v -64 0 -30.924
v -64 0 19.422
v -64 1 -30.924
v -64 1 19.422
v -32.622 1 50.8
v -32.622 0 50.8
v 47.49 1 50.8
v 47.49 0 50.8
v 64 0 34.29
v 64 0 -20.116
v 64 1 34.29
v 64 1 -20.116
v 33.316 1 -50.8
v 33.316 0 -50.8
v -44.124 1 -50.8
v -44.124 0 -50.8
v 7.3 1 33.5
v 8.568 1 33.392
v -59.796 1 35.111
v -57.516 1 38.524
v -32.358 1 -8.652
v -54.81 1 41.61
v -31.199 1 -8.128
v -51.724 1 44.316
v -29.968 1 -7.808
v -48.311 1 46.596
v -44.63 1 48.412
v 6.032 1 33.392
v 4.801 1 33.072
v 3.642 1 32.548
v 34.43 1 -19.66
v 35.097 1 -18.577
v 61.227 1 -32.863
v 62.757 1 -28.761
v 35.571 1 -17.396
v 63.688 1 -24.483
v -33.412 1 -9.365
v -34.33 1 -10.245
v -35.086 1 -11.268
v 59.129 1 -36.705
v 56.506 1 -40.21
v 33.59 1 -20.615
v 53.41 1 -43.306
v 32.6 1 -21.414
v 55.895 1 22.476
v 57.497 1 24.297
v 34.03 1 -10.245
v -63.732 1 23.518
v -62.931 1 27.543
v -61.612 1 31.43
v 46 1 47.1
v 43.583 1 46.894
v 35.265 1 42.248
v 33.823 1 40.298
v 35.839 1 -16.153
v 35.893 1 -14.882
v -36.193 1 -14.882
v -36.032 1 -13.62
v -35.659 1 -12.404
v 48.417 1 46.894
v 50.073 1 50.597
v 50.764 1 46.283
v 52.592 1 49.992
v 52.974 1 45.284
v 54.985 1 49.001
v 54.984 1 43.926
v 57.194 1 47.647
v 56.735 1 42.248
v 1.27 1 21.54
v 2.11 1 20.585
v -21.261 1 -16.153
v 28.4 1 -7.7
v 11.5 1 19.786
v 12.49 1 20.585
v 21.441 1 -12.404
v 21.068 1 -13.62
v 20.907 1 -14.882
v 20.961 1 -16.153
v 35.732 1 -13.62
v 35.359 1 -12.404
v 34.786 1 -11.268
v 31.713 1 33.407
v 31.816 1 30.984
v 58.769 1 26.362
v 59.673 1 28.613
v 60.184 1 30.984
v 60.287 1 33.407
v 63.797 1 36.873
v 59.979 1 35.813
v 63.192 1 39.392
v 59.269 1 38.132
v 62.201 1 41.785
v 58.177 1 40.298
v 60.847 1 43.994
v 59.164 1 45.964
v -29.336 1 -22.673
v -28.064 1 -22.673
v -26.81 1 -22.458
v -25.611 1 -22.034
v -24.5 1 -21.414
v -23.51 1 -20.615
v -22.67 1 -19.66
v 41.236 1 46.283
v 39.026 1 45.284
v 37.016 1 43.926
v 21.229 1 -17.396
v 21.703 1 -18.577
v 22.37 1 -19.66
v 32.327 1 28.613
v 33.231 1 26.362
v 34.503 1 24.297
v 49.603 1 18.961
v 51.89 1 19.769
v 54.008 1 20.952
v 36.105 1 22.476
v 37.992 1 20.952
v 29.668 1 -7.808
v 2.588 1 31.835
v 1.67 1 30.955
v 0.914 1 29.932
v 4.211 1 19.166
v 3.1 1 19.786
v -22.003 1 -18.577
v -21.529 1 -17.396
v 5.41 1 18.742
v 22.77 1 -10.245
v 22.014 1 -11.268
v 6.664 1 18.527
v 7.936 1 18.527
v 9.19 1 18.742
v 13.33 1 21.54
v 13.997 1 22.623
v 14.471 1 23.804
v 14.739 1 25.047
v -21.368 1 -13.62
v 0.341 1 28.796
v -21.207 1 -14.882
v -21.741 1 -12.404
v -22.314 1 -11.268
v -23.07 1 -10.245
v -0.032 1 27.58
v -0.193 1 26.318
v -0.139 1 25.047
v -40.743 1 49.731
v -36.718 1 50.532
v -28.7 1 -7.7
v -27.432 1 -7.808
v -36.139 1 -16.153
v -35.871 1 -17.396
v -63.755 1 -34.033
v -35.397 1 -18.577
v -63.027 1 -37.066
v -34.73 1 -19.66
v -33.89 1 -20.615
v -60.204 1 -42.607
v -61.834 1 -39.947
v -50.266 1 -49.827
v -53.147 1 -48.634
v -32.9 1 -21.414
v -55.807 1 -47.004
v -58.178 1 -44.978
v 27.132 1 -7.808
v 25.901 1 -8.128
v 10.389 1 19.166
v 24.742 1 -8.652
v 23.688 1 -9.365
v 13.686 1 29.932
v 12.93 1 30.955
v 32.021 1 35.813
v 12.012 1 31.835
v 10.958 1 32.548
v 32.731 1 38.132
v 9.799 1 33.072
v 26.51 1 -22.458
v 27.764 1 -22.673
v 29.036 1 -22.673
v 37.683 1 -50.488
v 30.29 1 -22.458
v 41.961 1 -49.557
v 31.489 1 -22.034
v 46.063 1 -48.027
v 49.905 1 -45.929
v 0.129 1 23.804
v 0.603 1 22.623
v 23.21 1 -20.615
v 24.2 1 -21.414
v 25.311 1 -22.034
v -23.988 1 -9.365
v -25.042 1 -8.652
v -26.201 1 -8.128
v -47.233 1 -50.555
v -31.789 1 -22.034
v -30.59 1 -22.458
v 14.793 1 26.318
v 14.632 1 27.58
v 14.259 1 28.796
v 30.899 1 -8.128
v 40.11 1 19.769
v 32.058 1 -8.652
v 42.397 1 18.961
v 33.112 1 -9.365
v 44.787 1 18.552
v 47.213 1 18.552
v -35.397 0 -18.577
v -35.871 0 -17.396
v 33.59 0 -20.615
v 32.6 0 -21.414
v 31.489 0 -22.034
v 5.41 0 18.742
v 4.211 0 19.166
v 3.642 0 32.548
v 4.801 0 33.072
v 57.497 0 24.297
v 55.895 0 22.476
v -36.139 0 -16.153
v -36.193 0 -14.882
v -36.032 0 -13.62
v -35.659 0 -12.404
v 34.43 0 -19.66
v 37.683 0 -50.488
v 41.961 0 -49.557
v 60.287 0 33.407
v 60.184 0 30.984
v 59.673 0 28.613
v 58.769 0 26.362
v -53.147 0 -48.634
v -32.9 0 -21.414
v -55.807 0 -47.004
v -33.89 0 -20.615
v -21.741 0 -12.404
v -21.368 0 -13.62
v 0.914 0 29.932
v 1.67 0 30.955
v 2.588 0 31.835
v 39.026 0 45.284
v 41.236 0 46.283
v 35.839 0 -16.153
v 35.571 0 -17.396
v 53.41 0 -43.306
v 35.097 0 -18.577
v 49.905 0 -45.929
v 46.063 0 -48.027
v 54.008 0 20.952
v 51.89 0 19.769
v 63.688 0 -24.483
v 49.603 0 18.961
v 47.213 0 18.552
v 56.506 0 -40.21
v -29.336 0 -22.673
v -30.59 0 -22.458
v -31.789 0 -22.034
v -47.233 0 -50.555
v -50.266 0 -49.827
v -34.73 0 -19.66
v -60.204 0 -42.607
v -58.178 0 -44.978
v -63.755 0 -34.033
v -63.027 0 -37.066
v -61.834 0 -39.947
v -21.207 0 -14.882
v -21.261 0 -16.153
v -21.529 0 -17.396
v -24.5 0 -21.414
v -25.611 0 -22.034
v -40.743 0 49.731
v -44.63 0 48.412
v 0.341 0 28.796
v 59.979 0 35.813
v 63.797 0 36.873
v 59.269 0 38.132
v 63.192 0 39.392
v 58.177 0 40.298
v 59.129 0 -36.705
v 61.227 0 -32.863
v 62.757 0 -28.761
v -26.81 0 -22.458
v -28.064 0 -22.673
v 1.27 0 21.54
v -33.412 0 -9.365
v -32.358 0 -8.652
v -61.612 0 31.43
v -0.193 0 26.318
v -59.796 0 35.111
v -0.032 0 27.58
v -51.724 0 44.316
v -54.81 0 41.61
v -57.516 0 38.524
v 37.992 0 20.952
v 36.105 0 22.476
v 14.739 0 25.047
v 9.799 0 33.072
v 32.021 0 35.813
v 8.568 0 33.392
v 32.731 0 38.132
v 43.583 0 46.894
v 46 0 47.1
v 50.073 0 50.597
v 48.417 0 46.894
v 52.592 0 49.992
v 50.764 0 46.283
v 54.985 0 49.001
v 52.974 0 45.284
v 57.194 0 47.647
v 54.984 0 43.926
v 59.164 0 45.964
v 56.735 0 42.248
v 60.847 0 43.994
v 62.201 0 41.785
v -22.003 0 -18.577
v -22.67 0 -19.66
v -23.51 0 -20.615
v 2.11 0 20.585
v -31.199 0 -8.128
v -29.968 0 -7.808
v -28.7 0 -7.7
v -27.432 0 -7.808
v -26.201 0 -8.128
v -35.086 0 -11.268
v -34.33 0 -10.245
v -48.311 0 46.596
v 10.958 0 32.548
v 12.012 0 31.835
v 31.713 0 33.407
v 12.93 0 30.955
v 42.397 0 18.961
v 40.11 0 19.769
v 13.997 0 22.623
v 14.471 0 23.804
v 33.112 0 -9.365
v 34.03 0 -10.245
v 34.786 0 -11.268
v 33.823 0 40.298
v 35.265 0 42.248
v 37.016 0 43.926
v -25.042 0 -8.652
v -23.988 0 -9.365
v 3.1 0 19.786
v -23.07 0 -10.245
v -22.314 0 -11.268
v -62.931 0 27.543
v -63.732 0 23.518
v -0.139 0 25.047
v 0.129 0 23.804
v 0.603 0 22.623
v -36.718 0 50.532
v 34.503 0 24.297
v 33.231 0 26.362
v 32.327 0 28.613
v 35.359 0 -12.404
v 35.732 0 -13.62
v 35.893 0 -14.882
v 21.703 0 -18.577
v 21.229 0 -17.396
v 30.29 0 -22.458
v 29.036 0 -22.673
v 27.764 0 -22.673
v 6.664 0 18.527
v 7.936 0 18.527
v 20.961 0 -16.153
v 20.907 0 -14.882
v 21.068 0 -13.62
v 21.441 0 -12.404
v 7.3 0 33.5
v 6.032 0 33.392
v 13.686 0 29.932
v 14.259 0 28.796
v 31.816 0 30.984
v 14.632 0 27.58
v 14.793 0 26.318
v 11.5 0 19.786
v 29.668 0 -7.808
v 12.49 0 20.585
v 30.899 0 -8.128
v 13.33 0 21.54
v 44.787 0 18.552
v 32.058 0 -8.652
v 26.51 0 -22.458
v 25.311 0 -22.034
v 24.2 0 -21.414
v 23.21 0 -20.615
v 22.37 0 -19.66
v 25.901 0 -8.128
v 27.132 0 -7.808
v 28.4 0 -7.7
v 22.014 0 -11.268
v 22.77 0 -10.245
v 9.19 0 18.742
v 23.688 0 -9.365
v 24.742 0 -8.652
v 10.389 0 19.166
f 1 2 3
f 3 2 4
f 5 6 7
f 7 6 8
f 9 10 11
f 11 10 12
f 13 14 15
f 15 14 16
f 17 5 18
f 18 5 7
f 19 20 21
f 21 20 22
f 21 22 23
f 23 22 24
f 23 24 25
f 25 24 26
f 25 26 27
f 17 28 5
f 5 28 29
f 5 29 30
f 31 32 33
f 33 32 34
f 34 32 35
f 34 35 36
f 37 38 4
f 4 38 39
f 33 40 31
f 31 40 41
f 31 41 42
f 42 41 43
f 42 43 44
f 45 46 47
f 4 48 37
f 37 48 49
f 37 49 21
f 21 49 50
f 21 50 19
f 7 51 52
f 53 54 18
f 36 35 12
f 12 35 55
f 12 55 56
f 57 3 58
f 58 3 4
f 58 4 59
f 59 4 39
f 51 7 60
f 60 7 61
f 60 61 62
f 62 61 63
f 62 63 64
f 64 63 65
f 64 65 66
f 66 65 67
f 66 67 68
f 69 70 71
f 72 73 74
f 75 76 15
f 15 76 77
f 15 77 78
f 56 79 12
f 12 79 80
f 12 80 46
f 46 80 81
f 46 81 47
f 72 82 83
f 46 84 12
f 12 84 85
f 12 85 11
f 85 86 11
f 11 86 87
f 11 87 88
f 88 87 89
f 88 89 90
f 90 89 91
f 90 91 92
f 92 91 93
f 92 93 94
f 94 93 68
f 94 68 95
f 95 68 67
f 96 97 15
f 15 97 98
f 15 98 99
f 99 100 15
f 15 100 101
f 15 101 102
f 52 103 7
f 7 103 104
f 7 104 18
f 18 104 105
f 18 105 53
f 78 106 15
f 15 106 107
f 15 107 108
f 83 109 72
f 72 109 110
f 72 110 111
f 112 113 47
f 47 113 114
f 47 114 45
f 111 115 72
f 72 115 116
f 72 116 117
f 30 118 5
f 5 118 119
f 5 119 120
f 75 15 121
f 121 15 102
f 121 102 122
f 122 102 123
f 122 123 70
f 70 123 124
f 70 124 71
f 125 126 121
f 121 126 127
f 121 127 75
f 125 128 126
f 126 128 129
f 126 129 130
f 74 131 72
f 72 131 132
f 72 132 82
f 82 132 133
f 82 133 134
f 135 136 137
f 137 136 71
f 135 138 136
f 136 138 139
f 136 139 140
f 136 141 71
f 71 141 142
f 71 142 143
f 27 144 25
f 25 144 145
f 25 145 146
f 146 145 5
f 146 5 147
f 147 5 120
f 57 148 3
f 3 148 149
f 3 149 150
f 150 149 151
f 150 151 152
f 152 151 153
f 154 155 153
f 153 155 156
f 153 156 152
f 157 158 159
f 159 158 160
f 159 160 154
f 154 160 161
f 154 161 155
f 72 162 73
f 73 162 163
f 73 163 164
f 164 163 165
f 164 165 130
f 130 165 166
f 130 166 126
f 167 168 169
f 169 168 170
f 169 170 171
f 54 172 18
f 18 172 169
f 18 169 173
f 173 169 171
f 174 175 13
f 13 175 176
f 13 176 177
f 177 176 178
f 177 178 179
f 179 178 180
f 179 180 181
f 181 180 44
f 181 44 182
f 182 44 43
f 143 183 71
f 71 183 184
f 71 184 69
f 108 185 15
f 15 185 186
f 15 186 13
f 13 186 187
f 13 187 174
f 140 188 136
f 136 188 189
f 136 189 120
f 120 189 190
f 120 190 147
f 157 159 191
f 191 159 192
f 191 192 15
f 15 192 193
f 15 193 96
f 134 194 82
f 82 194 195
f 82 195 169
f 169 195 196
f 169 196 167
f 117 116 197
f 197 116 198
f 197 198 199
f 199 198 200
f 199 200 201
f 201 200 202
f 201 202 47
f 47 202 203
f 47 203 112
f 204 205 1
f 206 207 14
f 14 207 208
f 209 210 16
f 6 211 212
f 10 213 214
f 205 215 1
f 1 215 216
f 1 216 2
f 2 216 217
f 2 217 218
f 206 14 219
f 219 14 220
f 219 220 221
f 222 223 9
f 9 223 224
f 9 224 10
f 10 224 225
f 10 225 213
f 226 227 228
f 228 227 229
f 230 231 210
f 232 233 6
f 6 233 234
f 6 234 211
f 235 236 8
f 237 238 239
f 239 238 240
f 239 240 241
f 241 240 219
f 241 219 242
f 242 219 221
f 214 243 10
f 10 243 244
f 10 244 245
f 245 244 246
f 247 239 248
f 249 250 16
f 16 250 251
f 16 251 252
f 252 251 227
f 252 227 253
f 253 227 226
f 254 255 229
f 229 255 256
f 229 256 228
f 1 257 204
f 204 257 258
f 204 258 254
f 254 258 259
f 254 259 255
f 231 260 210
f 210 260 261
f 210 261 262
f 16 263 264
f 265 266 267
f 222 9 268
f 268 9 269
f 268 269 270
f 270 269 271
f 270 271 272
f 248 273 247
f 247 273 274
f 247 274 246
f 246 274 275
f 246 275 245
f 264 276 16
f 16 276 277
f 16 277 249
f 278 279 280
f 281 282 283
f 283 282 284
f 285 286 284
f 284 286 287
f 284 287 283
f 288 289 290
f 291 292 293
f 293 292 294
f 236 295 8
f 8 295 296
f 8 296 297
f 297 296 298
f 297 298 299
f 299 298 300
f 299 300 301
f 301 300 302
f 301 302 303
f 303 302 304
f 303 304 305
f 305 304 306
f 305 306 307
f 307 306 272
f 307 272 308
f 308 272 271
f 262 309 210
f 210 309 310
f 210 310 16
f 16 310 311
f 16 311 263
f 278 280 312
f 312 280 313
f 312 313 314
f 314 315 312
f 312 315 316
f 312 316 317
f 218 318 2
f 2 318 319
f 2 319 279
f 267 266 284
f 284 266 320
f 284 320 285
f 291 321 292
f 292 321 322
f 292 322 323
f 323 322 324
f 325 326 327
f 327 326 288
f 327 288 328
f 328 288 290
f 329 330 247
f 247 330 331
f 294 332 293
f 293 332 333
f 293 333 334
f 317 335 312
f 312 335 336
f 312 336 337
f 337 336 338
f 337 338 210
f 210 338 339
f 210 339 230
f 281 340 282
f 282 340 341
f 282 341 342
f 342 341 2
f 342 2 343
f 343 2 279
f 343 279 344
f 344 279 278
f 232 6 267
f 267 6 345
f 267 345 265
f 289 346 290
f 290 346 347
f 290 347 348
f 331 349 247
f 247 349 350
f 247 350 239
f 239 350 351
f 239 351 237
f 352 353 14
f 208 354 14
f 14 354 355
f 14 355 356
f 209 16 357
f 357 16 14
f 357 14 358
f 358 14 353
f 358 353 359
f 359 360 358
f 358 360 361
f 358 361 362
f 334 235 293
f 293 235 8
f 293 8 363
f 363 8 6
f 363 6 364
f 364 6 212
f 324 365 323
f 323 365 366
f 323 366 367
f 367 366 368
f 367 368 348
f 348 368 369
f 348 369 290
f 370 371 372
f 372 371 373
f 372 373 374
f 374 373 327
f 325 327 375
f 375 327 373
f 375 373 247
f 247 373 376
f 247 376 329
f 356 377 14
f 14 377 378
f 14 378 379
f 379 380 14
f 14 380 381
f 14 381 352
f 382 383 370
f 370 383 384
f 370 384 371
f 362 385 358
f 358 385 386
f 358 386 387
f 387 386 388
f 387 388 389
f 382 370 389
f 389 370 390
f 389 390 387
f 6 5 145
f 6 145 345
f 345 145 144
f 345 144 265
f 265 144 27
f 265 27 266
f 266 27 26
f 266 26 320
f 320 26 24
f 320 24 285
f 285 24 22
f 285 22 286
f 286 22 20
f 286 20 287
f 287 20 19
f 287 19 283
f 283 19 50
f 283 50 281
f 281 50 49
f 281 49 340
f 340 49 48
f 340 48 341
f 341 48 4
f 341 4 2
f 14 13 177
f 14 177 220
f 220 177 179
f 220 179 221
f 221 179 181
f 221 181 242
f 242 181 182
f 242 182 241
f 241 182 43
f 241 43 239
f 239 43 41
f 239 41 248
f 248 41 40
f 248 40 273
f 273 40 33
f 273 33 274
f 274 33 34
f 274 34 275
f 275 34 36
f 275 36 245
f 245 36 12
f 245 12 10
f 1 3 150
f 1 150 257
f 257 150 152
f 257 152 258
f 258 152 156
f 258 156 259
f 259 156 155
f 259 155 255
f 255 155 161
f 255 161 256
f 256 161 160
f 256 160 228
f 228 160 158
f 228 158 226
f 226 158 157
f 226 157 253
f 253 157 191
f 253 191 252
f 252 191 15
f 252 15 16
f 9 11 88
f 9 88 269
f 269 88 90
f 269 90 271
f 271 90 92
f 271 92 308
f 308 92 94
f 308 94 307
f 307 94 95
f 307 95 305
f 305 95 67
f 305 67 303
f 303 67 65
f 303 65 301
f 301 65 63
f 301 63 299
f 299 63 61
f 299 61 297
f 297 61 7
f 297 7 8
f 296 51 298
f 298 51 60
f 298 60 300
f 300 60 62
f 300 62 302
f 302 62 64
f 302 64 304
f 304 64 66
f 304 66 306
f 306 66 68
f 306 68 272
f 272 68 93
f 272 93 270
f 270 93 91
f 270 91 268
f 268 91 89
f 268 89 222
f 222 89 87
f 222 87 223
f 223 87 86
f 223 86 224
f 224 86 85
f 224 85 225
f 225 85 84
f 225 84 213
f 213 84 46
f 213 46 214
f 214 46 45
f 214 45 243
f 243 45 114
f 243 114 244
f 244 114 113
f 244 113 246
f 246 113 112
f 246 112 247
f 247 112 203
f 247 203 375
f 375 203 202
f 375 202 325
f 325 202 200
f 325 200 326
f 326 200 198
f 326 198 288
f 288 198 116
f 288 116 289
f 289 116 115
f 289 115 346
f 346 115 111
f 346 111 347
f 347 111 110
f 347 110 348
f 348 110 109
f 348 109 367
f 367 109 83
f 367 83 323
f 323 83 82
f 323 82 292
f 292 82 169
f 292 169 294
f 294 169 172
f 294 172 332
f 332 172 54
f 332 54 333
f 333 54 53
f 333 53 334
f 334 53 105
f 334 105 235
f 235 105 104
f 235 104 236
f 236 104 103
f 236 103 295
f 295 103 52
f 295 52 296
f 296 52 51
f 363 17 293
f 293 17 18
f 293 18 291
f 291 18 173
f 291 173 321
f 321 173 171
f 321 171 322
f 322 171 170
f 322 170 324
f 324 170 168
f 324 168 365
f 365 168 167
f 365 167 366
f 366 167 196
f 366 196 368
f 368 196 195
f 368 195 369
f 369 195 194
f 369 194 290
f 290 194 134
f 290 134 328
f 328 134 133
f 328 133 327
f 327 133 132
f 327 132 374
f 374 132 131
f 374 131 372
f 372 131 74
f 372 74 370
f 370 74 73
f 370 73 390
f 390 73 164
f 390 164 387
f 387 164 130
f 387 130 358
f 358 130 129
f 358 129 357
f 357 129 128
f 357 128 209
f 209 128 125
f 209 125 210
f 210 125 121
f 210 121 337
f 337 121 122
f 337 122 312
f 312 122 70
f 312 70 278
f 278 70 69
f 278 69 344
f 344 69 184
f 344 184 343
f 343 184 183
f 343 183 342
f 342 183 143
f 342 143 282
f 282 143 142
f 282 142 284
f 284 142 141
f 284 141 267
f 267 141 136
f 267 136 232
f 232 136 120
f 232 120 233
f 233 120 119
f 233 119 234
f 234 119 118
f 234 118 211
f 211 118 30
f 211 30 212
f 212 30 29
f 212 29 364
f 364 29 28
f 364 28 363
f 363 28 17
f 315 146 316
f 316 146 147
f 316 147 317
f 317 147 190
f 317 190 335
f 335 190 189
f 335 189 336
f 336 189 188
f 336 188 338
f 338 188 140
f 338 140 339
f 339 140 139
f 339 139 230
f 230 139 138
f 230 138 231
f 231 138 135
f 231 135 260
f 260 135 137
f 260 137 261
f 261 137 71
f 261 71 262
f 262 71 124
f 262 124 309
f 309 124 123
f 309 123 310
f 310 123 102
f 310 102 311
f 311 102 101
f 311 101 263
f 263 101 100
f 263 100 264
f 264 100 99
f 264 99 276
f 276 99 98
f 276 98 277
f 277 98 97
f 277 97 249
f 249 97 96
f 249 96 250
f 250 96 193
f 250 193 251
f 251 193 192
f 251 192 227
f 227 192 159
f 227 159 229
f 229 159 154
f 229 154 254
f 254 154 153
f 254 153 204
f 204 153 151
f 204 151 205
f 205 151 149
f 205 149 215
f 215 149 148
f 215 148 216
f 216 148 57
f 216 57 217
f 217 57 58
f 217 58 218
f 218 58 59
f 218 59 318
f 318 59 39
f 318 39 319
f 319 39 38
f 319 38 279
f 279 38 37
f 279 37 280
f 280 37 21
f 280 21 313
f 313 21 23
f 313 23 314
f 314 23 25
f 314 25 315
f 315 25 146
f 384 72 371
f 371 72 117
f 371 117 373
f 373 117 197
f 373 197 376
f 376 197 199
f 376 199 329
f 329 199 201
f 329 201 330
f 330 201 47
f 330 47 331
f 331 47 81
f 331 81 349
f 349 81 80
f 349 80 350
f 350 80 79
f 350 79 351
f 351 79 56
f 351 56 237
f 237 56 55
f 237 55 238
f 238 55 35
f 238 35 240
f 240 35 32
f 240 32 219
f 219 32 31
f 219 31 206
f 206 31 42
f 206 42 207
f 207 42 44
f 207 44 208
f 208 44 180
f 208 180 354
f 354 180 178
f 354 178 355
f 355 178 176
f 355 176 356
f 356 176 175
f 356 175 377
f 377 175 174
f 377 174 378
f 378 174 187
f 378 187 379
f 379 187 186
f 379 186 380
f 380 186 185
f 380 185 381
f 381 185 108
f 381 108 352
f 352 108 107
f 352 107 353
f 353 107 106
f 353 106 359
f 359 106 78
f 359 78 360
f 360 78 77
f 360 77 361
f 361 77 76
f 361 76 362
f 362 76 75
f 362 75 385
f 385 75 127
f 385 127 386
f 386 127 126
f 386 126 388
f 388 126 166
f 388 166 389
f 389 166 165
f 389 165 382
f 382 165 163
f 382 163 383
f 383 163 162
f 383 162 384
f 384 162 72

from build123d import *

# Parameters (mm, degrees)
SKETCH1_W           = 128
SKETCH1_H           = 101.6
BOSS_EXTRUDE1_DEPTH = 1
CUT_EXTRUDE1_DEPTH  = 1
SKETCH3_R           = 14.3
SKETCH3_R_2         = 7.5
CUT_EXTRUDE2_DEPTH  = 1


with BuildPart() as part:
    # Sketch1 → Boss-Extrude1 (new body)
    with BuildSketch(Plane(origin=(0, 0, 0), x_dir=(1, 0, 0), z_dir=(0, 1, 0))):
        Rectangle(SKETCH1_W, SKETCH1_H)
    extrude(amount=BOSS_EXTRUDE1_DEPTH)

    # Sketch2 → Cut-Extrude1 (cut)
    with BuildSketch(Plane(origin=(0, 1, 0), x_dir=(1, 0, 0), z_dir=(0, 1, 0))):
        with BuildLine():
            Line((-64, -50.8), (-64, -19.42235648))
            ThreePointArc((-64, -19.42235648), (-54.809700991, -41.609700991), (-32.62235648, -50.8))
            Line((-32.62235648, -50.8), (-64, -50.8))
        make_face()
        with BuildLine():
            Line((47.49, -50.8), (64, -50.8))
            Line((64, -50.8), (64, -34.29))
            ThreePointArc((64, -34.29), (59.164332957, -45.964332957), (47.49, -50.8))
        make_face()
        with BuildLine():
            Line((-64, 30.923649501), (-64, 50.8))
            Line((-64, 50.8), (-44.123649501, 50.8))
            ThreePointArc((-44.123649501, 50.8), (-58.178351724, 44.978351724), (-64, 30.923649501))
        make_face()
        with BuildLine():
            Line((64, 20.116458758), (64, 50.8))
            Line((64, 50.8), (33.316458758, 50.8))
            ThreePointArc((33.316458758, 50.8), (55.012998841, 41.812998841), (64, 20.116458758))
        make_face()
    extrude(amount=-CUT_EXTRUDE1_DEPTH, mode=Mode.SUBTRACT)

    # Sketch3 → Cut-Extrude2 (cut)
    with BuildSketch(Plane(origin=(0, 1, 0), x_dir=(1, 0, 0), z_dir=(0, 1, 0))):
        with Locations(Location((46, -32.8, 0), (0, 0, 270))):
            Circle(SKETCH3_R)
        with Locations(Location((7.3, -26, 0), (0, 0, 270))):
            Circle(SKETCH3_R_2)
        with Locations(Location((-28.7, 15.2, 0), (0, 0, 270))):
            Circle(SKETCH3_R_2)
        with Locations(Location((28.4, 15.2, 0), (0, 0, 270))):
            Circle(SKETCH3_R_2)
    extrude(amount=-CUT_EXTRUDE2_DEPTH, mode=Mode.SUBTRACT)


solid = part.part
